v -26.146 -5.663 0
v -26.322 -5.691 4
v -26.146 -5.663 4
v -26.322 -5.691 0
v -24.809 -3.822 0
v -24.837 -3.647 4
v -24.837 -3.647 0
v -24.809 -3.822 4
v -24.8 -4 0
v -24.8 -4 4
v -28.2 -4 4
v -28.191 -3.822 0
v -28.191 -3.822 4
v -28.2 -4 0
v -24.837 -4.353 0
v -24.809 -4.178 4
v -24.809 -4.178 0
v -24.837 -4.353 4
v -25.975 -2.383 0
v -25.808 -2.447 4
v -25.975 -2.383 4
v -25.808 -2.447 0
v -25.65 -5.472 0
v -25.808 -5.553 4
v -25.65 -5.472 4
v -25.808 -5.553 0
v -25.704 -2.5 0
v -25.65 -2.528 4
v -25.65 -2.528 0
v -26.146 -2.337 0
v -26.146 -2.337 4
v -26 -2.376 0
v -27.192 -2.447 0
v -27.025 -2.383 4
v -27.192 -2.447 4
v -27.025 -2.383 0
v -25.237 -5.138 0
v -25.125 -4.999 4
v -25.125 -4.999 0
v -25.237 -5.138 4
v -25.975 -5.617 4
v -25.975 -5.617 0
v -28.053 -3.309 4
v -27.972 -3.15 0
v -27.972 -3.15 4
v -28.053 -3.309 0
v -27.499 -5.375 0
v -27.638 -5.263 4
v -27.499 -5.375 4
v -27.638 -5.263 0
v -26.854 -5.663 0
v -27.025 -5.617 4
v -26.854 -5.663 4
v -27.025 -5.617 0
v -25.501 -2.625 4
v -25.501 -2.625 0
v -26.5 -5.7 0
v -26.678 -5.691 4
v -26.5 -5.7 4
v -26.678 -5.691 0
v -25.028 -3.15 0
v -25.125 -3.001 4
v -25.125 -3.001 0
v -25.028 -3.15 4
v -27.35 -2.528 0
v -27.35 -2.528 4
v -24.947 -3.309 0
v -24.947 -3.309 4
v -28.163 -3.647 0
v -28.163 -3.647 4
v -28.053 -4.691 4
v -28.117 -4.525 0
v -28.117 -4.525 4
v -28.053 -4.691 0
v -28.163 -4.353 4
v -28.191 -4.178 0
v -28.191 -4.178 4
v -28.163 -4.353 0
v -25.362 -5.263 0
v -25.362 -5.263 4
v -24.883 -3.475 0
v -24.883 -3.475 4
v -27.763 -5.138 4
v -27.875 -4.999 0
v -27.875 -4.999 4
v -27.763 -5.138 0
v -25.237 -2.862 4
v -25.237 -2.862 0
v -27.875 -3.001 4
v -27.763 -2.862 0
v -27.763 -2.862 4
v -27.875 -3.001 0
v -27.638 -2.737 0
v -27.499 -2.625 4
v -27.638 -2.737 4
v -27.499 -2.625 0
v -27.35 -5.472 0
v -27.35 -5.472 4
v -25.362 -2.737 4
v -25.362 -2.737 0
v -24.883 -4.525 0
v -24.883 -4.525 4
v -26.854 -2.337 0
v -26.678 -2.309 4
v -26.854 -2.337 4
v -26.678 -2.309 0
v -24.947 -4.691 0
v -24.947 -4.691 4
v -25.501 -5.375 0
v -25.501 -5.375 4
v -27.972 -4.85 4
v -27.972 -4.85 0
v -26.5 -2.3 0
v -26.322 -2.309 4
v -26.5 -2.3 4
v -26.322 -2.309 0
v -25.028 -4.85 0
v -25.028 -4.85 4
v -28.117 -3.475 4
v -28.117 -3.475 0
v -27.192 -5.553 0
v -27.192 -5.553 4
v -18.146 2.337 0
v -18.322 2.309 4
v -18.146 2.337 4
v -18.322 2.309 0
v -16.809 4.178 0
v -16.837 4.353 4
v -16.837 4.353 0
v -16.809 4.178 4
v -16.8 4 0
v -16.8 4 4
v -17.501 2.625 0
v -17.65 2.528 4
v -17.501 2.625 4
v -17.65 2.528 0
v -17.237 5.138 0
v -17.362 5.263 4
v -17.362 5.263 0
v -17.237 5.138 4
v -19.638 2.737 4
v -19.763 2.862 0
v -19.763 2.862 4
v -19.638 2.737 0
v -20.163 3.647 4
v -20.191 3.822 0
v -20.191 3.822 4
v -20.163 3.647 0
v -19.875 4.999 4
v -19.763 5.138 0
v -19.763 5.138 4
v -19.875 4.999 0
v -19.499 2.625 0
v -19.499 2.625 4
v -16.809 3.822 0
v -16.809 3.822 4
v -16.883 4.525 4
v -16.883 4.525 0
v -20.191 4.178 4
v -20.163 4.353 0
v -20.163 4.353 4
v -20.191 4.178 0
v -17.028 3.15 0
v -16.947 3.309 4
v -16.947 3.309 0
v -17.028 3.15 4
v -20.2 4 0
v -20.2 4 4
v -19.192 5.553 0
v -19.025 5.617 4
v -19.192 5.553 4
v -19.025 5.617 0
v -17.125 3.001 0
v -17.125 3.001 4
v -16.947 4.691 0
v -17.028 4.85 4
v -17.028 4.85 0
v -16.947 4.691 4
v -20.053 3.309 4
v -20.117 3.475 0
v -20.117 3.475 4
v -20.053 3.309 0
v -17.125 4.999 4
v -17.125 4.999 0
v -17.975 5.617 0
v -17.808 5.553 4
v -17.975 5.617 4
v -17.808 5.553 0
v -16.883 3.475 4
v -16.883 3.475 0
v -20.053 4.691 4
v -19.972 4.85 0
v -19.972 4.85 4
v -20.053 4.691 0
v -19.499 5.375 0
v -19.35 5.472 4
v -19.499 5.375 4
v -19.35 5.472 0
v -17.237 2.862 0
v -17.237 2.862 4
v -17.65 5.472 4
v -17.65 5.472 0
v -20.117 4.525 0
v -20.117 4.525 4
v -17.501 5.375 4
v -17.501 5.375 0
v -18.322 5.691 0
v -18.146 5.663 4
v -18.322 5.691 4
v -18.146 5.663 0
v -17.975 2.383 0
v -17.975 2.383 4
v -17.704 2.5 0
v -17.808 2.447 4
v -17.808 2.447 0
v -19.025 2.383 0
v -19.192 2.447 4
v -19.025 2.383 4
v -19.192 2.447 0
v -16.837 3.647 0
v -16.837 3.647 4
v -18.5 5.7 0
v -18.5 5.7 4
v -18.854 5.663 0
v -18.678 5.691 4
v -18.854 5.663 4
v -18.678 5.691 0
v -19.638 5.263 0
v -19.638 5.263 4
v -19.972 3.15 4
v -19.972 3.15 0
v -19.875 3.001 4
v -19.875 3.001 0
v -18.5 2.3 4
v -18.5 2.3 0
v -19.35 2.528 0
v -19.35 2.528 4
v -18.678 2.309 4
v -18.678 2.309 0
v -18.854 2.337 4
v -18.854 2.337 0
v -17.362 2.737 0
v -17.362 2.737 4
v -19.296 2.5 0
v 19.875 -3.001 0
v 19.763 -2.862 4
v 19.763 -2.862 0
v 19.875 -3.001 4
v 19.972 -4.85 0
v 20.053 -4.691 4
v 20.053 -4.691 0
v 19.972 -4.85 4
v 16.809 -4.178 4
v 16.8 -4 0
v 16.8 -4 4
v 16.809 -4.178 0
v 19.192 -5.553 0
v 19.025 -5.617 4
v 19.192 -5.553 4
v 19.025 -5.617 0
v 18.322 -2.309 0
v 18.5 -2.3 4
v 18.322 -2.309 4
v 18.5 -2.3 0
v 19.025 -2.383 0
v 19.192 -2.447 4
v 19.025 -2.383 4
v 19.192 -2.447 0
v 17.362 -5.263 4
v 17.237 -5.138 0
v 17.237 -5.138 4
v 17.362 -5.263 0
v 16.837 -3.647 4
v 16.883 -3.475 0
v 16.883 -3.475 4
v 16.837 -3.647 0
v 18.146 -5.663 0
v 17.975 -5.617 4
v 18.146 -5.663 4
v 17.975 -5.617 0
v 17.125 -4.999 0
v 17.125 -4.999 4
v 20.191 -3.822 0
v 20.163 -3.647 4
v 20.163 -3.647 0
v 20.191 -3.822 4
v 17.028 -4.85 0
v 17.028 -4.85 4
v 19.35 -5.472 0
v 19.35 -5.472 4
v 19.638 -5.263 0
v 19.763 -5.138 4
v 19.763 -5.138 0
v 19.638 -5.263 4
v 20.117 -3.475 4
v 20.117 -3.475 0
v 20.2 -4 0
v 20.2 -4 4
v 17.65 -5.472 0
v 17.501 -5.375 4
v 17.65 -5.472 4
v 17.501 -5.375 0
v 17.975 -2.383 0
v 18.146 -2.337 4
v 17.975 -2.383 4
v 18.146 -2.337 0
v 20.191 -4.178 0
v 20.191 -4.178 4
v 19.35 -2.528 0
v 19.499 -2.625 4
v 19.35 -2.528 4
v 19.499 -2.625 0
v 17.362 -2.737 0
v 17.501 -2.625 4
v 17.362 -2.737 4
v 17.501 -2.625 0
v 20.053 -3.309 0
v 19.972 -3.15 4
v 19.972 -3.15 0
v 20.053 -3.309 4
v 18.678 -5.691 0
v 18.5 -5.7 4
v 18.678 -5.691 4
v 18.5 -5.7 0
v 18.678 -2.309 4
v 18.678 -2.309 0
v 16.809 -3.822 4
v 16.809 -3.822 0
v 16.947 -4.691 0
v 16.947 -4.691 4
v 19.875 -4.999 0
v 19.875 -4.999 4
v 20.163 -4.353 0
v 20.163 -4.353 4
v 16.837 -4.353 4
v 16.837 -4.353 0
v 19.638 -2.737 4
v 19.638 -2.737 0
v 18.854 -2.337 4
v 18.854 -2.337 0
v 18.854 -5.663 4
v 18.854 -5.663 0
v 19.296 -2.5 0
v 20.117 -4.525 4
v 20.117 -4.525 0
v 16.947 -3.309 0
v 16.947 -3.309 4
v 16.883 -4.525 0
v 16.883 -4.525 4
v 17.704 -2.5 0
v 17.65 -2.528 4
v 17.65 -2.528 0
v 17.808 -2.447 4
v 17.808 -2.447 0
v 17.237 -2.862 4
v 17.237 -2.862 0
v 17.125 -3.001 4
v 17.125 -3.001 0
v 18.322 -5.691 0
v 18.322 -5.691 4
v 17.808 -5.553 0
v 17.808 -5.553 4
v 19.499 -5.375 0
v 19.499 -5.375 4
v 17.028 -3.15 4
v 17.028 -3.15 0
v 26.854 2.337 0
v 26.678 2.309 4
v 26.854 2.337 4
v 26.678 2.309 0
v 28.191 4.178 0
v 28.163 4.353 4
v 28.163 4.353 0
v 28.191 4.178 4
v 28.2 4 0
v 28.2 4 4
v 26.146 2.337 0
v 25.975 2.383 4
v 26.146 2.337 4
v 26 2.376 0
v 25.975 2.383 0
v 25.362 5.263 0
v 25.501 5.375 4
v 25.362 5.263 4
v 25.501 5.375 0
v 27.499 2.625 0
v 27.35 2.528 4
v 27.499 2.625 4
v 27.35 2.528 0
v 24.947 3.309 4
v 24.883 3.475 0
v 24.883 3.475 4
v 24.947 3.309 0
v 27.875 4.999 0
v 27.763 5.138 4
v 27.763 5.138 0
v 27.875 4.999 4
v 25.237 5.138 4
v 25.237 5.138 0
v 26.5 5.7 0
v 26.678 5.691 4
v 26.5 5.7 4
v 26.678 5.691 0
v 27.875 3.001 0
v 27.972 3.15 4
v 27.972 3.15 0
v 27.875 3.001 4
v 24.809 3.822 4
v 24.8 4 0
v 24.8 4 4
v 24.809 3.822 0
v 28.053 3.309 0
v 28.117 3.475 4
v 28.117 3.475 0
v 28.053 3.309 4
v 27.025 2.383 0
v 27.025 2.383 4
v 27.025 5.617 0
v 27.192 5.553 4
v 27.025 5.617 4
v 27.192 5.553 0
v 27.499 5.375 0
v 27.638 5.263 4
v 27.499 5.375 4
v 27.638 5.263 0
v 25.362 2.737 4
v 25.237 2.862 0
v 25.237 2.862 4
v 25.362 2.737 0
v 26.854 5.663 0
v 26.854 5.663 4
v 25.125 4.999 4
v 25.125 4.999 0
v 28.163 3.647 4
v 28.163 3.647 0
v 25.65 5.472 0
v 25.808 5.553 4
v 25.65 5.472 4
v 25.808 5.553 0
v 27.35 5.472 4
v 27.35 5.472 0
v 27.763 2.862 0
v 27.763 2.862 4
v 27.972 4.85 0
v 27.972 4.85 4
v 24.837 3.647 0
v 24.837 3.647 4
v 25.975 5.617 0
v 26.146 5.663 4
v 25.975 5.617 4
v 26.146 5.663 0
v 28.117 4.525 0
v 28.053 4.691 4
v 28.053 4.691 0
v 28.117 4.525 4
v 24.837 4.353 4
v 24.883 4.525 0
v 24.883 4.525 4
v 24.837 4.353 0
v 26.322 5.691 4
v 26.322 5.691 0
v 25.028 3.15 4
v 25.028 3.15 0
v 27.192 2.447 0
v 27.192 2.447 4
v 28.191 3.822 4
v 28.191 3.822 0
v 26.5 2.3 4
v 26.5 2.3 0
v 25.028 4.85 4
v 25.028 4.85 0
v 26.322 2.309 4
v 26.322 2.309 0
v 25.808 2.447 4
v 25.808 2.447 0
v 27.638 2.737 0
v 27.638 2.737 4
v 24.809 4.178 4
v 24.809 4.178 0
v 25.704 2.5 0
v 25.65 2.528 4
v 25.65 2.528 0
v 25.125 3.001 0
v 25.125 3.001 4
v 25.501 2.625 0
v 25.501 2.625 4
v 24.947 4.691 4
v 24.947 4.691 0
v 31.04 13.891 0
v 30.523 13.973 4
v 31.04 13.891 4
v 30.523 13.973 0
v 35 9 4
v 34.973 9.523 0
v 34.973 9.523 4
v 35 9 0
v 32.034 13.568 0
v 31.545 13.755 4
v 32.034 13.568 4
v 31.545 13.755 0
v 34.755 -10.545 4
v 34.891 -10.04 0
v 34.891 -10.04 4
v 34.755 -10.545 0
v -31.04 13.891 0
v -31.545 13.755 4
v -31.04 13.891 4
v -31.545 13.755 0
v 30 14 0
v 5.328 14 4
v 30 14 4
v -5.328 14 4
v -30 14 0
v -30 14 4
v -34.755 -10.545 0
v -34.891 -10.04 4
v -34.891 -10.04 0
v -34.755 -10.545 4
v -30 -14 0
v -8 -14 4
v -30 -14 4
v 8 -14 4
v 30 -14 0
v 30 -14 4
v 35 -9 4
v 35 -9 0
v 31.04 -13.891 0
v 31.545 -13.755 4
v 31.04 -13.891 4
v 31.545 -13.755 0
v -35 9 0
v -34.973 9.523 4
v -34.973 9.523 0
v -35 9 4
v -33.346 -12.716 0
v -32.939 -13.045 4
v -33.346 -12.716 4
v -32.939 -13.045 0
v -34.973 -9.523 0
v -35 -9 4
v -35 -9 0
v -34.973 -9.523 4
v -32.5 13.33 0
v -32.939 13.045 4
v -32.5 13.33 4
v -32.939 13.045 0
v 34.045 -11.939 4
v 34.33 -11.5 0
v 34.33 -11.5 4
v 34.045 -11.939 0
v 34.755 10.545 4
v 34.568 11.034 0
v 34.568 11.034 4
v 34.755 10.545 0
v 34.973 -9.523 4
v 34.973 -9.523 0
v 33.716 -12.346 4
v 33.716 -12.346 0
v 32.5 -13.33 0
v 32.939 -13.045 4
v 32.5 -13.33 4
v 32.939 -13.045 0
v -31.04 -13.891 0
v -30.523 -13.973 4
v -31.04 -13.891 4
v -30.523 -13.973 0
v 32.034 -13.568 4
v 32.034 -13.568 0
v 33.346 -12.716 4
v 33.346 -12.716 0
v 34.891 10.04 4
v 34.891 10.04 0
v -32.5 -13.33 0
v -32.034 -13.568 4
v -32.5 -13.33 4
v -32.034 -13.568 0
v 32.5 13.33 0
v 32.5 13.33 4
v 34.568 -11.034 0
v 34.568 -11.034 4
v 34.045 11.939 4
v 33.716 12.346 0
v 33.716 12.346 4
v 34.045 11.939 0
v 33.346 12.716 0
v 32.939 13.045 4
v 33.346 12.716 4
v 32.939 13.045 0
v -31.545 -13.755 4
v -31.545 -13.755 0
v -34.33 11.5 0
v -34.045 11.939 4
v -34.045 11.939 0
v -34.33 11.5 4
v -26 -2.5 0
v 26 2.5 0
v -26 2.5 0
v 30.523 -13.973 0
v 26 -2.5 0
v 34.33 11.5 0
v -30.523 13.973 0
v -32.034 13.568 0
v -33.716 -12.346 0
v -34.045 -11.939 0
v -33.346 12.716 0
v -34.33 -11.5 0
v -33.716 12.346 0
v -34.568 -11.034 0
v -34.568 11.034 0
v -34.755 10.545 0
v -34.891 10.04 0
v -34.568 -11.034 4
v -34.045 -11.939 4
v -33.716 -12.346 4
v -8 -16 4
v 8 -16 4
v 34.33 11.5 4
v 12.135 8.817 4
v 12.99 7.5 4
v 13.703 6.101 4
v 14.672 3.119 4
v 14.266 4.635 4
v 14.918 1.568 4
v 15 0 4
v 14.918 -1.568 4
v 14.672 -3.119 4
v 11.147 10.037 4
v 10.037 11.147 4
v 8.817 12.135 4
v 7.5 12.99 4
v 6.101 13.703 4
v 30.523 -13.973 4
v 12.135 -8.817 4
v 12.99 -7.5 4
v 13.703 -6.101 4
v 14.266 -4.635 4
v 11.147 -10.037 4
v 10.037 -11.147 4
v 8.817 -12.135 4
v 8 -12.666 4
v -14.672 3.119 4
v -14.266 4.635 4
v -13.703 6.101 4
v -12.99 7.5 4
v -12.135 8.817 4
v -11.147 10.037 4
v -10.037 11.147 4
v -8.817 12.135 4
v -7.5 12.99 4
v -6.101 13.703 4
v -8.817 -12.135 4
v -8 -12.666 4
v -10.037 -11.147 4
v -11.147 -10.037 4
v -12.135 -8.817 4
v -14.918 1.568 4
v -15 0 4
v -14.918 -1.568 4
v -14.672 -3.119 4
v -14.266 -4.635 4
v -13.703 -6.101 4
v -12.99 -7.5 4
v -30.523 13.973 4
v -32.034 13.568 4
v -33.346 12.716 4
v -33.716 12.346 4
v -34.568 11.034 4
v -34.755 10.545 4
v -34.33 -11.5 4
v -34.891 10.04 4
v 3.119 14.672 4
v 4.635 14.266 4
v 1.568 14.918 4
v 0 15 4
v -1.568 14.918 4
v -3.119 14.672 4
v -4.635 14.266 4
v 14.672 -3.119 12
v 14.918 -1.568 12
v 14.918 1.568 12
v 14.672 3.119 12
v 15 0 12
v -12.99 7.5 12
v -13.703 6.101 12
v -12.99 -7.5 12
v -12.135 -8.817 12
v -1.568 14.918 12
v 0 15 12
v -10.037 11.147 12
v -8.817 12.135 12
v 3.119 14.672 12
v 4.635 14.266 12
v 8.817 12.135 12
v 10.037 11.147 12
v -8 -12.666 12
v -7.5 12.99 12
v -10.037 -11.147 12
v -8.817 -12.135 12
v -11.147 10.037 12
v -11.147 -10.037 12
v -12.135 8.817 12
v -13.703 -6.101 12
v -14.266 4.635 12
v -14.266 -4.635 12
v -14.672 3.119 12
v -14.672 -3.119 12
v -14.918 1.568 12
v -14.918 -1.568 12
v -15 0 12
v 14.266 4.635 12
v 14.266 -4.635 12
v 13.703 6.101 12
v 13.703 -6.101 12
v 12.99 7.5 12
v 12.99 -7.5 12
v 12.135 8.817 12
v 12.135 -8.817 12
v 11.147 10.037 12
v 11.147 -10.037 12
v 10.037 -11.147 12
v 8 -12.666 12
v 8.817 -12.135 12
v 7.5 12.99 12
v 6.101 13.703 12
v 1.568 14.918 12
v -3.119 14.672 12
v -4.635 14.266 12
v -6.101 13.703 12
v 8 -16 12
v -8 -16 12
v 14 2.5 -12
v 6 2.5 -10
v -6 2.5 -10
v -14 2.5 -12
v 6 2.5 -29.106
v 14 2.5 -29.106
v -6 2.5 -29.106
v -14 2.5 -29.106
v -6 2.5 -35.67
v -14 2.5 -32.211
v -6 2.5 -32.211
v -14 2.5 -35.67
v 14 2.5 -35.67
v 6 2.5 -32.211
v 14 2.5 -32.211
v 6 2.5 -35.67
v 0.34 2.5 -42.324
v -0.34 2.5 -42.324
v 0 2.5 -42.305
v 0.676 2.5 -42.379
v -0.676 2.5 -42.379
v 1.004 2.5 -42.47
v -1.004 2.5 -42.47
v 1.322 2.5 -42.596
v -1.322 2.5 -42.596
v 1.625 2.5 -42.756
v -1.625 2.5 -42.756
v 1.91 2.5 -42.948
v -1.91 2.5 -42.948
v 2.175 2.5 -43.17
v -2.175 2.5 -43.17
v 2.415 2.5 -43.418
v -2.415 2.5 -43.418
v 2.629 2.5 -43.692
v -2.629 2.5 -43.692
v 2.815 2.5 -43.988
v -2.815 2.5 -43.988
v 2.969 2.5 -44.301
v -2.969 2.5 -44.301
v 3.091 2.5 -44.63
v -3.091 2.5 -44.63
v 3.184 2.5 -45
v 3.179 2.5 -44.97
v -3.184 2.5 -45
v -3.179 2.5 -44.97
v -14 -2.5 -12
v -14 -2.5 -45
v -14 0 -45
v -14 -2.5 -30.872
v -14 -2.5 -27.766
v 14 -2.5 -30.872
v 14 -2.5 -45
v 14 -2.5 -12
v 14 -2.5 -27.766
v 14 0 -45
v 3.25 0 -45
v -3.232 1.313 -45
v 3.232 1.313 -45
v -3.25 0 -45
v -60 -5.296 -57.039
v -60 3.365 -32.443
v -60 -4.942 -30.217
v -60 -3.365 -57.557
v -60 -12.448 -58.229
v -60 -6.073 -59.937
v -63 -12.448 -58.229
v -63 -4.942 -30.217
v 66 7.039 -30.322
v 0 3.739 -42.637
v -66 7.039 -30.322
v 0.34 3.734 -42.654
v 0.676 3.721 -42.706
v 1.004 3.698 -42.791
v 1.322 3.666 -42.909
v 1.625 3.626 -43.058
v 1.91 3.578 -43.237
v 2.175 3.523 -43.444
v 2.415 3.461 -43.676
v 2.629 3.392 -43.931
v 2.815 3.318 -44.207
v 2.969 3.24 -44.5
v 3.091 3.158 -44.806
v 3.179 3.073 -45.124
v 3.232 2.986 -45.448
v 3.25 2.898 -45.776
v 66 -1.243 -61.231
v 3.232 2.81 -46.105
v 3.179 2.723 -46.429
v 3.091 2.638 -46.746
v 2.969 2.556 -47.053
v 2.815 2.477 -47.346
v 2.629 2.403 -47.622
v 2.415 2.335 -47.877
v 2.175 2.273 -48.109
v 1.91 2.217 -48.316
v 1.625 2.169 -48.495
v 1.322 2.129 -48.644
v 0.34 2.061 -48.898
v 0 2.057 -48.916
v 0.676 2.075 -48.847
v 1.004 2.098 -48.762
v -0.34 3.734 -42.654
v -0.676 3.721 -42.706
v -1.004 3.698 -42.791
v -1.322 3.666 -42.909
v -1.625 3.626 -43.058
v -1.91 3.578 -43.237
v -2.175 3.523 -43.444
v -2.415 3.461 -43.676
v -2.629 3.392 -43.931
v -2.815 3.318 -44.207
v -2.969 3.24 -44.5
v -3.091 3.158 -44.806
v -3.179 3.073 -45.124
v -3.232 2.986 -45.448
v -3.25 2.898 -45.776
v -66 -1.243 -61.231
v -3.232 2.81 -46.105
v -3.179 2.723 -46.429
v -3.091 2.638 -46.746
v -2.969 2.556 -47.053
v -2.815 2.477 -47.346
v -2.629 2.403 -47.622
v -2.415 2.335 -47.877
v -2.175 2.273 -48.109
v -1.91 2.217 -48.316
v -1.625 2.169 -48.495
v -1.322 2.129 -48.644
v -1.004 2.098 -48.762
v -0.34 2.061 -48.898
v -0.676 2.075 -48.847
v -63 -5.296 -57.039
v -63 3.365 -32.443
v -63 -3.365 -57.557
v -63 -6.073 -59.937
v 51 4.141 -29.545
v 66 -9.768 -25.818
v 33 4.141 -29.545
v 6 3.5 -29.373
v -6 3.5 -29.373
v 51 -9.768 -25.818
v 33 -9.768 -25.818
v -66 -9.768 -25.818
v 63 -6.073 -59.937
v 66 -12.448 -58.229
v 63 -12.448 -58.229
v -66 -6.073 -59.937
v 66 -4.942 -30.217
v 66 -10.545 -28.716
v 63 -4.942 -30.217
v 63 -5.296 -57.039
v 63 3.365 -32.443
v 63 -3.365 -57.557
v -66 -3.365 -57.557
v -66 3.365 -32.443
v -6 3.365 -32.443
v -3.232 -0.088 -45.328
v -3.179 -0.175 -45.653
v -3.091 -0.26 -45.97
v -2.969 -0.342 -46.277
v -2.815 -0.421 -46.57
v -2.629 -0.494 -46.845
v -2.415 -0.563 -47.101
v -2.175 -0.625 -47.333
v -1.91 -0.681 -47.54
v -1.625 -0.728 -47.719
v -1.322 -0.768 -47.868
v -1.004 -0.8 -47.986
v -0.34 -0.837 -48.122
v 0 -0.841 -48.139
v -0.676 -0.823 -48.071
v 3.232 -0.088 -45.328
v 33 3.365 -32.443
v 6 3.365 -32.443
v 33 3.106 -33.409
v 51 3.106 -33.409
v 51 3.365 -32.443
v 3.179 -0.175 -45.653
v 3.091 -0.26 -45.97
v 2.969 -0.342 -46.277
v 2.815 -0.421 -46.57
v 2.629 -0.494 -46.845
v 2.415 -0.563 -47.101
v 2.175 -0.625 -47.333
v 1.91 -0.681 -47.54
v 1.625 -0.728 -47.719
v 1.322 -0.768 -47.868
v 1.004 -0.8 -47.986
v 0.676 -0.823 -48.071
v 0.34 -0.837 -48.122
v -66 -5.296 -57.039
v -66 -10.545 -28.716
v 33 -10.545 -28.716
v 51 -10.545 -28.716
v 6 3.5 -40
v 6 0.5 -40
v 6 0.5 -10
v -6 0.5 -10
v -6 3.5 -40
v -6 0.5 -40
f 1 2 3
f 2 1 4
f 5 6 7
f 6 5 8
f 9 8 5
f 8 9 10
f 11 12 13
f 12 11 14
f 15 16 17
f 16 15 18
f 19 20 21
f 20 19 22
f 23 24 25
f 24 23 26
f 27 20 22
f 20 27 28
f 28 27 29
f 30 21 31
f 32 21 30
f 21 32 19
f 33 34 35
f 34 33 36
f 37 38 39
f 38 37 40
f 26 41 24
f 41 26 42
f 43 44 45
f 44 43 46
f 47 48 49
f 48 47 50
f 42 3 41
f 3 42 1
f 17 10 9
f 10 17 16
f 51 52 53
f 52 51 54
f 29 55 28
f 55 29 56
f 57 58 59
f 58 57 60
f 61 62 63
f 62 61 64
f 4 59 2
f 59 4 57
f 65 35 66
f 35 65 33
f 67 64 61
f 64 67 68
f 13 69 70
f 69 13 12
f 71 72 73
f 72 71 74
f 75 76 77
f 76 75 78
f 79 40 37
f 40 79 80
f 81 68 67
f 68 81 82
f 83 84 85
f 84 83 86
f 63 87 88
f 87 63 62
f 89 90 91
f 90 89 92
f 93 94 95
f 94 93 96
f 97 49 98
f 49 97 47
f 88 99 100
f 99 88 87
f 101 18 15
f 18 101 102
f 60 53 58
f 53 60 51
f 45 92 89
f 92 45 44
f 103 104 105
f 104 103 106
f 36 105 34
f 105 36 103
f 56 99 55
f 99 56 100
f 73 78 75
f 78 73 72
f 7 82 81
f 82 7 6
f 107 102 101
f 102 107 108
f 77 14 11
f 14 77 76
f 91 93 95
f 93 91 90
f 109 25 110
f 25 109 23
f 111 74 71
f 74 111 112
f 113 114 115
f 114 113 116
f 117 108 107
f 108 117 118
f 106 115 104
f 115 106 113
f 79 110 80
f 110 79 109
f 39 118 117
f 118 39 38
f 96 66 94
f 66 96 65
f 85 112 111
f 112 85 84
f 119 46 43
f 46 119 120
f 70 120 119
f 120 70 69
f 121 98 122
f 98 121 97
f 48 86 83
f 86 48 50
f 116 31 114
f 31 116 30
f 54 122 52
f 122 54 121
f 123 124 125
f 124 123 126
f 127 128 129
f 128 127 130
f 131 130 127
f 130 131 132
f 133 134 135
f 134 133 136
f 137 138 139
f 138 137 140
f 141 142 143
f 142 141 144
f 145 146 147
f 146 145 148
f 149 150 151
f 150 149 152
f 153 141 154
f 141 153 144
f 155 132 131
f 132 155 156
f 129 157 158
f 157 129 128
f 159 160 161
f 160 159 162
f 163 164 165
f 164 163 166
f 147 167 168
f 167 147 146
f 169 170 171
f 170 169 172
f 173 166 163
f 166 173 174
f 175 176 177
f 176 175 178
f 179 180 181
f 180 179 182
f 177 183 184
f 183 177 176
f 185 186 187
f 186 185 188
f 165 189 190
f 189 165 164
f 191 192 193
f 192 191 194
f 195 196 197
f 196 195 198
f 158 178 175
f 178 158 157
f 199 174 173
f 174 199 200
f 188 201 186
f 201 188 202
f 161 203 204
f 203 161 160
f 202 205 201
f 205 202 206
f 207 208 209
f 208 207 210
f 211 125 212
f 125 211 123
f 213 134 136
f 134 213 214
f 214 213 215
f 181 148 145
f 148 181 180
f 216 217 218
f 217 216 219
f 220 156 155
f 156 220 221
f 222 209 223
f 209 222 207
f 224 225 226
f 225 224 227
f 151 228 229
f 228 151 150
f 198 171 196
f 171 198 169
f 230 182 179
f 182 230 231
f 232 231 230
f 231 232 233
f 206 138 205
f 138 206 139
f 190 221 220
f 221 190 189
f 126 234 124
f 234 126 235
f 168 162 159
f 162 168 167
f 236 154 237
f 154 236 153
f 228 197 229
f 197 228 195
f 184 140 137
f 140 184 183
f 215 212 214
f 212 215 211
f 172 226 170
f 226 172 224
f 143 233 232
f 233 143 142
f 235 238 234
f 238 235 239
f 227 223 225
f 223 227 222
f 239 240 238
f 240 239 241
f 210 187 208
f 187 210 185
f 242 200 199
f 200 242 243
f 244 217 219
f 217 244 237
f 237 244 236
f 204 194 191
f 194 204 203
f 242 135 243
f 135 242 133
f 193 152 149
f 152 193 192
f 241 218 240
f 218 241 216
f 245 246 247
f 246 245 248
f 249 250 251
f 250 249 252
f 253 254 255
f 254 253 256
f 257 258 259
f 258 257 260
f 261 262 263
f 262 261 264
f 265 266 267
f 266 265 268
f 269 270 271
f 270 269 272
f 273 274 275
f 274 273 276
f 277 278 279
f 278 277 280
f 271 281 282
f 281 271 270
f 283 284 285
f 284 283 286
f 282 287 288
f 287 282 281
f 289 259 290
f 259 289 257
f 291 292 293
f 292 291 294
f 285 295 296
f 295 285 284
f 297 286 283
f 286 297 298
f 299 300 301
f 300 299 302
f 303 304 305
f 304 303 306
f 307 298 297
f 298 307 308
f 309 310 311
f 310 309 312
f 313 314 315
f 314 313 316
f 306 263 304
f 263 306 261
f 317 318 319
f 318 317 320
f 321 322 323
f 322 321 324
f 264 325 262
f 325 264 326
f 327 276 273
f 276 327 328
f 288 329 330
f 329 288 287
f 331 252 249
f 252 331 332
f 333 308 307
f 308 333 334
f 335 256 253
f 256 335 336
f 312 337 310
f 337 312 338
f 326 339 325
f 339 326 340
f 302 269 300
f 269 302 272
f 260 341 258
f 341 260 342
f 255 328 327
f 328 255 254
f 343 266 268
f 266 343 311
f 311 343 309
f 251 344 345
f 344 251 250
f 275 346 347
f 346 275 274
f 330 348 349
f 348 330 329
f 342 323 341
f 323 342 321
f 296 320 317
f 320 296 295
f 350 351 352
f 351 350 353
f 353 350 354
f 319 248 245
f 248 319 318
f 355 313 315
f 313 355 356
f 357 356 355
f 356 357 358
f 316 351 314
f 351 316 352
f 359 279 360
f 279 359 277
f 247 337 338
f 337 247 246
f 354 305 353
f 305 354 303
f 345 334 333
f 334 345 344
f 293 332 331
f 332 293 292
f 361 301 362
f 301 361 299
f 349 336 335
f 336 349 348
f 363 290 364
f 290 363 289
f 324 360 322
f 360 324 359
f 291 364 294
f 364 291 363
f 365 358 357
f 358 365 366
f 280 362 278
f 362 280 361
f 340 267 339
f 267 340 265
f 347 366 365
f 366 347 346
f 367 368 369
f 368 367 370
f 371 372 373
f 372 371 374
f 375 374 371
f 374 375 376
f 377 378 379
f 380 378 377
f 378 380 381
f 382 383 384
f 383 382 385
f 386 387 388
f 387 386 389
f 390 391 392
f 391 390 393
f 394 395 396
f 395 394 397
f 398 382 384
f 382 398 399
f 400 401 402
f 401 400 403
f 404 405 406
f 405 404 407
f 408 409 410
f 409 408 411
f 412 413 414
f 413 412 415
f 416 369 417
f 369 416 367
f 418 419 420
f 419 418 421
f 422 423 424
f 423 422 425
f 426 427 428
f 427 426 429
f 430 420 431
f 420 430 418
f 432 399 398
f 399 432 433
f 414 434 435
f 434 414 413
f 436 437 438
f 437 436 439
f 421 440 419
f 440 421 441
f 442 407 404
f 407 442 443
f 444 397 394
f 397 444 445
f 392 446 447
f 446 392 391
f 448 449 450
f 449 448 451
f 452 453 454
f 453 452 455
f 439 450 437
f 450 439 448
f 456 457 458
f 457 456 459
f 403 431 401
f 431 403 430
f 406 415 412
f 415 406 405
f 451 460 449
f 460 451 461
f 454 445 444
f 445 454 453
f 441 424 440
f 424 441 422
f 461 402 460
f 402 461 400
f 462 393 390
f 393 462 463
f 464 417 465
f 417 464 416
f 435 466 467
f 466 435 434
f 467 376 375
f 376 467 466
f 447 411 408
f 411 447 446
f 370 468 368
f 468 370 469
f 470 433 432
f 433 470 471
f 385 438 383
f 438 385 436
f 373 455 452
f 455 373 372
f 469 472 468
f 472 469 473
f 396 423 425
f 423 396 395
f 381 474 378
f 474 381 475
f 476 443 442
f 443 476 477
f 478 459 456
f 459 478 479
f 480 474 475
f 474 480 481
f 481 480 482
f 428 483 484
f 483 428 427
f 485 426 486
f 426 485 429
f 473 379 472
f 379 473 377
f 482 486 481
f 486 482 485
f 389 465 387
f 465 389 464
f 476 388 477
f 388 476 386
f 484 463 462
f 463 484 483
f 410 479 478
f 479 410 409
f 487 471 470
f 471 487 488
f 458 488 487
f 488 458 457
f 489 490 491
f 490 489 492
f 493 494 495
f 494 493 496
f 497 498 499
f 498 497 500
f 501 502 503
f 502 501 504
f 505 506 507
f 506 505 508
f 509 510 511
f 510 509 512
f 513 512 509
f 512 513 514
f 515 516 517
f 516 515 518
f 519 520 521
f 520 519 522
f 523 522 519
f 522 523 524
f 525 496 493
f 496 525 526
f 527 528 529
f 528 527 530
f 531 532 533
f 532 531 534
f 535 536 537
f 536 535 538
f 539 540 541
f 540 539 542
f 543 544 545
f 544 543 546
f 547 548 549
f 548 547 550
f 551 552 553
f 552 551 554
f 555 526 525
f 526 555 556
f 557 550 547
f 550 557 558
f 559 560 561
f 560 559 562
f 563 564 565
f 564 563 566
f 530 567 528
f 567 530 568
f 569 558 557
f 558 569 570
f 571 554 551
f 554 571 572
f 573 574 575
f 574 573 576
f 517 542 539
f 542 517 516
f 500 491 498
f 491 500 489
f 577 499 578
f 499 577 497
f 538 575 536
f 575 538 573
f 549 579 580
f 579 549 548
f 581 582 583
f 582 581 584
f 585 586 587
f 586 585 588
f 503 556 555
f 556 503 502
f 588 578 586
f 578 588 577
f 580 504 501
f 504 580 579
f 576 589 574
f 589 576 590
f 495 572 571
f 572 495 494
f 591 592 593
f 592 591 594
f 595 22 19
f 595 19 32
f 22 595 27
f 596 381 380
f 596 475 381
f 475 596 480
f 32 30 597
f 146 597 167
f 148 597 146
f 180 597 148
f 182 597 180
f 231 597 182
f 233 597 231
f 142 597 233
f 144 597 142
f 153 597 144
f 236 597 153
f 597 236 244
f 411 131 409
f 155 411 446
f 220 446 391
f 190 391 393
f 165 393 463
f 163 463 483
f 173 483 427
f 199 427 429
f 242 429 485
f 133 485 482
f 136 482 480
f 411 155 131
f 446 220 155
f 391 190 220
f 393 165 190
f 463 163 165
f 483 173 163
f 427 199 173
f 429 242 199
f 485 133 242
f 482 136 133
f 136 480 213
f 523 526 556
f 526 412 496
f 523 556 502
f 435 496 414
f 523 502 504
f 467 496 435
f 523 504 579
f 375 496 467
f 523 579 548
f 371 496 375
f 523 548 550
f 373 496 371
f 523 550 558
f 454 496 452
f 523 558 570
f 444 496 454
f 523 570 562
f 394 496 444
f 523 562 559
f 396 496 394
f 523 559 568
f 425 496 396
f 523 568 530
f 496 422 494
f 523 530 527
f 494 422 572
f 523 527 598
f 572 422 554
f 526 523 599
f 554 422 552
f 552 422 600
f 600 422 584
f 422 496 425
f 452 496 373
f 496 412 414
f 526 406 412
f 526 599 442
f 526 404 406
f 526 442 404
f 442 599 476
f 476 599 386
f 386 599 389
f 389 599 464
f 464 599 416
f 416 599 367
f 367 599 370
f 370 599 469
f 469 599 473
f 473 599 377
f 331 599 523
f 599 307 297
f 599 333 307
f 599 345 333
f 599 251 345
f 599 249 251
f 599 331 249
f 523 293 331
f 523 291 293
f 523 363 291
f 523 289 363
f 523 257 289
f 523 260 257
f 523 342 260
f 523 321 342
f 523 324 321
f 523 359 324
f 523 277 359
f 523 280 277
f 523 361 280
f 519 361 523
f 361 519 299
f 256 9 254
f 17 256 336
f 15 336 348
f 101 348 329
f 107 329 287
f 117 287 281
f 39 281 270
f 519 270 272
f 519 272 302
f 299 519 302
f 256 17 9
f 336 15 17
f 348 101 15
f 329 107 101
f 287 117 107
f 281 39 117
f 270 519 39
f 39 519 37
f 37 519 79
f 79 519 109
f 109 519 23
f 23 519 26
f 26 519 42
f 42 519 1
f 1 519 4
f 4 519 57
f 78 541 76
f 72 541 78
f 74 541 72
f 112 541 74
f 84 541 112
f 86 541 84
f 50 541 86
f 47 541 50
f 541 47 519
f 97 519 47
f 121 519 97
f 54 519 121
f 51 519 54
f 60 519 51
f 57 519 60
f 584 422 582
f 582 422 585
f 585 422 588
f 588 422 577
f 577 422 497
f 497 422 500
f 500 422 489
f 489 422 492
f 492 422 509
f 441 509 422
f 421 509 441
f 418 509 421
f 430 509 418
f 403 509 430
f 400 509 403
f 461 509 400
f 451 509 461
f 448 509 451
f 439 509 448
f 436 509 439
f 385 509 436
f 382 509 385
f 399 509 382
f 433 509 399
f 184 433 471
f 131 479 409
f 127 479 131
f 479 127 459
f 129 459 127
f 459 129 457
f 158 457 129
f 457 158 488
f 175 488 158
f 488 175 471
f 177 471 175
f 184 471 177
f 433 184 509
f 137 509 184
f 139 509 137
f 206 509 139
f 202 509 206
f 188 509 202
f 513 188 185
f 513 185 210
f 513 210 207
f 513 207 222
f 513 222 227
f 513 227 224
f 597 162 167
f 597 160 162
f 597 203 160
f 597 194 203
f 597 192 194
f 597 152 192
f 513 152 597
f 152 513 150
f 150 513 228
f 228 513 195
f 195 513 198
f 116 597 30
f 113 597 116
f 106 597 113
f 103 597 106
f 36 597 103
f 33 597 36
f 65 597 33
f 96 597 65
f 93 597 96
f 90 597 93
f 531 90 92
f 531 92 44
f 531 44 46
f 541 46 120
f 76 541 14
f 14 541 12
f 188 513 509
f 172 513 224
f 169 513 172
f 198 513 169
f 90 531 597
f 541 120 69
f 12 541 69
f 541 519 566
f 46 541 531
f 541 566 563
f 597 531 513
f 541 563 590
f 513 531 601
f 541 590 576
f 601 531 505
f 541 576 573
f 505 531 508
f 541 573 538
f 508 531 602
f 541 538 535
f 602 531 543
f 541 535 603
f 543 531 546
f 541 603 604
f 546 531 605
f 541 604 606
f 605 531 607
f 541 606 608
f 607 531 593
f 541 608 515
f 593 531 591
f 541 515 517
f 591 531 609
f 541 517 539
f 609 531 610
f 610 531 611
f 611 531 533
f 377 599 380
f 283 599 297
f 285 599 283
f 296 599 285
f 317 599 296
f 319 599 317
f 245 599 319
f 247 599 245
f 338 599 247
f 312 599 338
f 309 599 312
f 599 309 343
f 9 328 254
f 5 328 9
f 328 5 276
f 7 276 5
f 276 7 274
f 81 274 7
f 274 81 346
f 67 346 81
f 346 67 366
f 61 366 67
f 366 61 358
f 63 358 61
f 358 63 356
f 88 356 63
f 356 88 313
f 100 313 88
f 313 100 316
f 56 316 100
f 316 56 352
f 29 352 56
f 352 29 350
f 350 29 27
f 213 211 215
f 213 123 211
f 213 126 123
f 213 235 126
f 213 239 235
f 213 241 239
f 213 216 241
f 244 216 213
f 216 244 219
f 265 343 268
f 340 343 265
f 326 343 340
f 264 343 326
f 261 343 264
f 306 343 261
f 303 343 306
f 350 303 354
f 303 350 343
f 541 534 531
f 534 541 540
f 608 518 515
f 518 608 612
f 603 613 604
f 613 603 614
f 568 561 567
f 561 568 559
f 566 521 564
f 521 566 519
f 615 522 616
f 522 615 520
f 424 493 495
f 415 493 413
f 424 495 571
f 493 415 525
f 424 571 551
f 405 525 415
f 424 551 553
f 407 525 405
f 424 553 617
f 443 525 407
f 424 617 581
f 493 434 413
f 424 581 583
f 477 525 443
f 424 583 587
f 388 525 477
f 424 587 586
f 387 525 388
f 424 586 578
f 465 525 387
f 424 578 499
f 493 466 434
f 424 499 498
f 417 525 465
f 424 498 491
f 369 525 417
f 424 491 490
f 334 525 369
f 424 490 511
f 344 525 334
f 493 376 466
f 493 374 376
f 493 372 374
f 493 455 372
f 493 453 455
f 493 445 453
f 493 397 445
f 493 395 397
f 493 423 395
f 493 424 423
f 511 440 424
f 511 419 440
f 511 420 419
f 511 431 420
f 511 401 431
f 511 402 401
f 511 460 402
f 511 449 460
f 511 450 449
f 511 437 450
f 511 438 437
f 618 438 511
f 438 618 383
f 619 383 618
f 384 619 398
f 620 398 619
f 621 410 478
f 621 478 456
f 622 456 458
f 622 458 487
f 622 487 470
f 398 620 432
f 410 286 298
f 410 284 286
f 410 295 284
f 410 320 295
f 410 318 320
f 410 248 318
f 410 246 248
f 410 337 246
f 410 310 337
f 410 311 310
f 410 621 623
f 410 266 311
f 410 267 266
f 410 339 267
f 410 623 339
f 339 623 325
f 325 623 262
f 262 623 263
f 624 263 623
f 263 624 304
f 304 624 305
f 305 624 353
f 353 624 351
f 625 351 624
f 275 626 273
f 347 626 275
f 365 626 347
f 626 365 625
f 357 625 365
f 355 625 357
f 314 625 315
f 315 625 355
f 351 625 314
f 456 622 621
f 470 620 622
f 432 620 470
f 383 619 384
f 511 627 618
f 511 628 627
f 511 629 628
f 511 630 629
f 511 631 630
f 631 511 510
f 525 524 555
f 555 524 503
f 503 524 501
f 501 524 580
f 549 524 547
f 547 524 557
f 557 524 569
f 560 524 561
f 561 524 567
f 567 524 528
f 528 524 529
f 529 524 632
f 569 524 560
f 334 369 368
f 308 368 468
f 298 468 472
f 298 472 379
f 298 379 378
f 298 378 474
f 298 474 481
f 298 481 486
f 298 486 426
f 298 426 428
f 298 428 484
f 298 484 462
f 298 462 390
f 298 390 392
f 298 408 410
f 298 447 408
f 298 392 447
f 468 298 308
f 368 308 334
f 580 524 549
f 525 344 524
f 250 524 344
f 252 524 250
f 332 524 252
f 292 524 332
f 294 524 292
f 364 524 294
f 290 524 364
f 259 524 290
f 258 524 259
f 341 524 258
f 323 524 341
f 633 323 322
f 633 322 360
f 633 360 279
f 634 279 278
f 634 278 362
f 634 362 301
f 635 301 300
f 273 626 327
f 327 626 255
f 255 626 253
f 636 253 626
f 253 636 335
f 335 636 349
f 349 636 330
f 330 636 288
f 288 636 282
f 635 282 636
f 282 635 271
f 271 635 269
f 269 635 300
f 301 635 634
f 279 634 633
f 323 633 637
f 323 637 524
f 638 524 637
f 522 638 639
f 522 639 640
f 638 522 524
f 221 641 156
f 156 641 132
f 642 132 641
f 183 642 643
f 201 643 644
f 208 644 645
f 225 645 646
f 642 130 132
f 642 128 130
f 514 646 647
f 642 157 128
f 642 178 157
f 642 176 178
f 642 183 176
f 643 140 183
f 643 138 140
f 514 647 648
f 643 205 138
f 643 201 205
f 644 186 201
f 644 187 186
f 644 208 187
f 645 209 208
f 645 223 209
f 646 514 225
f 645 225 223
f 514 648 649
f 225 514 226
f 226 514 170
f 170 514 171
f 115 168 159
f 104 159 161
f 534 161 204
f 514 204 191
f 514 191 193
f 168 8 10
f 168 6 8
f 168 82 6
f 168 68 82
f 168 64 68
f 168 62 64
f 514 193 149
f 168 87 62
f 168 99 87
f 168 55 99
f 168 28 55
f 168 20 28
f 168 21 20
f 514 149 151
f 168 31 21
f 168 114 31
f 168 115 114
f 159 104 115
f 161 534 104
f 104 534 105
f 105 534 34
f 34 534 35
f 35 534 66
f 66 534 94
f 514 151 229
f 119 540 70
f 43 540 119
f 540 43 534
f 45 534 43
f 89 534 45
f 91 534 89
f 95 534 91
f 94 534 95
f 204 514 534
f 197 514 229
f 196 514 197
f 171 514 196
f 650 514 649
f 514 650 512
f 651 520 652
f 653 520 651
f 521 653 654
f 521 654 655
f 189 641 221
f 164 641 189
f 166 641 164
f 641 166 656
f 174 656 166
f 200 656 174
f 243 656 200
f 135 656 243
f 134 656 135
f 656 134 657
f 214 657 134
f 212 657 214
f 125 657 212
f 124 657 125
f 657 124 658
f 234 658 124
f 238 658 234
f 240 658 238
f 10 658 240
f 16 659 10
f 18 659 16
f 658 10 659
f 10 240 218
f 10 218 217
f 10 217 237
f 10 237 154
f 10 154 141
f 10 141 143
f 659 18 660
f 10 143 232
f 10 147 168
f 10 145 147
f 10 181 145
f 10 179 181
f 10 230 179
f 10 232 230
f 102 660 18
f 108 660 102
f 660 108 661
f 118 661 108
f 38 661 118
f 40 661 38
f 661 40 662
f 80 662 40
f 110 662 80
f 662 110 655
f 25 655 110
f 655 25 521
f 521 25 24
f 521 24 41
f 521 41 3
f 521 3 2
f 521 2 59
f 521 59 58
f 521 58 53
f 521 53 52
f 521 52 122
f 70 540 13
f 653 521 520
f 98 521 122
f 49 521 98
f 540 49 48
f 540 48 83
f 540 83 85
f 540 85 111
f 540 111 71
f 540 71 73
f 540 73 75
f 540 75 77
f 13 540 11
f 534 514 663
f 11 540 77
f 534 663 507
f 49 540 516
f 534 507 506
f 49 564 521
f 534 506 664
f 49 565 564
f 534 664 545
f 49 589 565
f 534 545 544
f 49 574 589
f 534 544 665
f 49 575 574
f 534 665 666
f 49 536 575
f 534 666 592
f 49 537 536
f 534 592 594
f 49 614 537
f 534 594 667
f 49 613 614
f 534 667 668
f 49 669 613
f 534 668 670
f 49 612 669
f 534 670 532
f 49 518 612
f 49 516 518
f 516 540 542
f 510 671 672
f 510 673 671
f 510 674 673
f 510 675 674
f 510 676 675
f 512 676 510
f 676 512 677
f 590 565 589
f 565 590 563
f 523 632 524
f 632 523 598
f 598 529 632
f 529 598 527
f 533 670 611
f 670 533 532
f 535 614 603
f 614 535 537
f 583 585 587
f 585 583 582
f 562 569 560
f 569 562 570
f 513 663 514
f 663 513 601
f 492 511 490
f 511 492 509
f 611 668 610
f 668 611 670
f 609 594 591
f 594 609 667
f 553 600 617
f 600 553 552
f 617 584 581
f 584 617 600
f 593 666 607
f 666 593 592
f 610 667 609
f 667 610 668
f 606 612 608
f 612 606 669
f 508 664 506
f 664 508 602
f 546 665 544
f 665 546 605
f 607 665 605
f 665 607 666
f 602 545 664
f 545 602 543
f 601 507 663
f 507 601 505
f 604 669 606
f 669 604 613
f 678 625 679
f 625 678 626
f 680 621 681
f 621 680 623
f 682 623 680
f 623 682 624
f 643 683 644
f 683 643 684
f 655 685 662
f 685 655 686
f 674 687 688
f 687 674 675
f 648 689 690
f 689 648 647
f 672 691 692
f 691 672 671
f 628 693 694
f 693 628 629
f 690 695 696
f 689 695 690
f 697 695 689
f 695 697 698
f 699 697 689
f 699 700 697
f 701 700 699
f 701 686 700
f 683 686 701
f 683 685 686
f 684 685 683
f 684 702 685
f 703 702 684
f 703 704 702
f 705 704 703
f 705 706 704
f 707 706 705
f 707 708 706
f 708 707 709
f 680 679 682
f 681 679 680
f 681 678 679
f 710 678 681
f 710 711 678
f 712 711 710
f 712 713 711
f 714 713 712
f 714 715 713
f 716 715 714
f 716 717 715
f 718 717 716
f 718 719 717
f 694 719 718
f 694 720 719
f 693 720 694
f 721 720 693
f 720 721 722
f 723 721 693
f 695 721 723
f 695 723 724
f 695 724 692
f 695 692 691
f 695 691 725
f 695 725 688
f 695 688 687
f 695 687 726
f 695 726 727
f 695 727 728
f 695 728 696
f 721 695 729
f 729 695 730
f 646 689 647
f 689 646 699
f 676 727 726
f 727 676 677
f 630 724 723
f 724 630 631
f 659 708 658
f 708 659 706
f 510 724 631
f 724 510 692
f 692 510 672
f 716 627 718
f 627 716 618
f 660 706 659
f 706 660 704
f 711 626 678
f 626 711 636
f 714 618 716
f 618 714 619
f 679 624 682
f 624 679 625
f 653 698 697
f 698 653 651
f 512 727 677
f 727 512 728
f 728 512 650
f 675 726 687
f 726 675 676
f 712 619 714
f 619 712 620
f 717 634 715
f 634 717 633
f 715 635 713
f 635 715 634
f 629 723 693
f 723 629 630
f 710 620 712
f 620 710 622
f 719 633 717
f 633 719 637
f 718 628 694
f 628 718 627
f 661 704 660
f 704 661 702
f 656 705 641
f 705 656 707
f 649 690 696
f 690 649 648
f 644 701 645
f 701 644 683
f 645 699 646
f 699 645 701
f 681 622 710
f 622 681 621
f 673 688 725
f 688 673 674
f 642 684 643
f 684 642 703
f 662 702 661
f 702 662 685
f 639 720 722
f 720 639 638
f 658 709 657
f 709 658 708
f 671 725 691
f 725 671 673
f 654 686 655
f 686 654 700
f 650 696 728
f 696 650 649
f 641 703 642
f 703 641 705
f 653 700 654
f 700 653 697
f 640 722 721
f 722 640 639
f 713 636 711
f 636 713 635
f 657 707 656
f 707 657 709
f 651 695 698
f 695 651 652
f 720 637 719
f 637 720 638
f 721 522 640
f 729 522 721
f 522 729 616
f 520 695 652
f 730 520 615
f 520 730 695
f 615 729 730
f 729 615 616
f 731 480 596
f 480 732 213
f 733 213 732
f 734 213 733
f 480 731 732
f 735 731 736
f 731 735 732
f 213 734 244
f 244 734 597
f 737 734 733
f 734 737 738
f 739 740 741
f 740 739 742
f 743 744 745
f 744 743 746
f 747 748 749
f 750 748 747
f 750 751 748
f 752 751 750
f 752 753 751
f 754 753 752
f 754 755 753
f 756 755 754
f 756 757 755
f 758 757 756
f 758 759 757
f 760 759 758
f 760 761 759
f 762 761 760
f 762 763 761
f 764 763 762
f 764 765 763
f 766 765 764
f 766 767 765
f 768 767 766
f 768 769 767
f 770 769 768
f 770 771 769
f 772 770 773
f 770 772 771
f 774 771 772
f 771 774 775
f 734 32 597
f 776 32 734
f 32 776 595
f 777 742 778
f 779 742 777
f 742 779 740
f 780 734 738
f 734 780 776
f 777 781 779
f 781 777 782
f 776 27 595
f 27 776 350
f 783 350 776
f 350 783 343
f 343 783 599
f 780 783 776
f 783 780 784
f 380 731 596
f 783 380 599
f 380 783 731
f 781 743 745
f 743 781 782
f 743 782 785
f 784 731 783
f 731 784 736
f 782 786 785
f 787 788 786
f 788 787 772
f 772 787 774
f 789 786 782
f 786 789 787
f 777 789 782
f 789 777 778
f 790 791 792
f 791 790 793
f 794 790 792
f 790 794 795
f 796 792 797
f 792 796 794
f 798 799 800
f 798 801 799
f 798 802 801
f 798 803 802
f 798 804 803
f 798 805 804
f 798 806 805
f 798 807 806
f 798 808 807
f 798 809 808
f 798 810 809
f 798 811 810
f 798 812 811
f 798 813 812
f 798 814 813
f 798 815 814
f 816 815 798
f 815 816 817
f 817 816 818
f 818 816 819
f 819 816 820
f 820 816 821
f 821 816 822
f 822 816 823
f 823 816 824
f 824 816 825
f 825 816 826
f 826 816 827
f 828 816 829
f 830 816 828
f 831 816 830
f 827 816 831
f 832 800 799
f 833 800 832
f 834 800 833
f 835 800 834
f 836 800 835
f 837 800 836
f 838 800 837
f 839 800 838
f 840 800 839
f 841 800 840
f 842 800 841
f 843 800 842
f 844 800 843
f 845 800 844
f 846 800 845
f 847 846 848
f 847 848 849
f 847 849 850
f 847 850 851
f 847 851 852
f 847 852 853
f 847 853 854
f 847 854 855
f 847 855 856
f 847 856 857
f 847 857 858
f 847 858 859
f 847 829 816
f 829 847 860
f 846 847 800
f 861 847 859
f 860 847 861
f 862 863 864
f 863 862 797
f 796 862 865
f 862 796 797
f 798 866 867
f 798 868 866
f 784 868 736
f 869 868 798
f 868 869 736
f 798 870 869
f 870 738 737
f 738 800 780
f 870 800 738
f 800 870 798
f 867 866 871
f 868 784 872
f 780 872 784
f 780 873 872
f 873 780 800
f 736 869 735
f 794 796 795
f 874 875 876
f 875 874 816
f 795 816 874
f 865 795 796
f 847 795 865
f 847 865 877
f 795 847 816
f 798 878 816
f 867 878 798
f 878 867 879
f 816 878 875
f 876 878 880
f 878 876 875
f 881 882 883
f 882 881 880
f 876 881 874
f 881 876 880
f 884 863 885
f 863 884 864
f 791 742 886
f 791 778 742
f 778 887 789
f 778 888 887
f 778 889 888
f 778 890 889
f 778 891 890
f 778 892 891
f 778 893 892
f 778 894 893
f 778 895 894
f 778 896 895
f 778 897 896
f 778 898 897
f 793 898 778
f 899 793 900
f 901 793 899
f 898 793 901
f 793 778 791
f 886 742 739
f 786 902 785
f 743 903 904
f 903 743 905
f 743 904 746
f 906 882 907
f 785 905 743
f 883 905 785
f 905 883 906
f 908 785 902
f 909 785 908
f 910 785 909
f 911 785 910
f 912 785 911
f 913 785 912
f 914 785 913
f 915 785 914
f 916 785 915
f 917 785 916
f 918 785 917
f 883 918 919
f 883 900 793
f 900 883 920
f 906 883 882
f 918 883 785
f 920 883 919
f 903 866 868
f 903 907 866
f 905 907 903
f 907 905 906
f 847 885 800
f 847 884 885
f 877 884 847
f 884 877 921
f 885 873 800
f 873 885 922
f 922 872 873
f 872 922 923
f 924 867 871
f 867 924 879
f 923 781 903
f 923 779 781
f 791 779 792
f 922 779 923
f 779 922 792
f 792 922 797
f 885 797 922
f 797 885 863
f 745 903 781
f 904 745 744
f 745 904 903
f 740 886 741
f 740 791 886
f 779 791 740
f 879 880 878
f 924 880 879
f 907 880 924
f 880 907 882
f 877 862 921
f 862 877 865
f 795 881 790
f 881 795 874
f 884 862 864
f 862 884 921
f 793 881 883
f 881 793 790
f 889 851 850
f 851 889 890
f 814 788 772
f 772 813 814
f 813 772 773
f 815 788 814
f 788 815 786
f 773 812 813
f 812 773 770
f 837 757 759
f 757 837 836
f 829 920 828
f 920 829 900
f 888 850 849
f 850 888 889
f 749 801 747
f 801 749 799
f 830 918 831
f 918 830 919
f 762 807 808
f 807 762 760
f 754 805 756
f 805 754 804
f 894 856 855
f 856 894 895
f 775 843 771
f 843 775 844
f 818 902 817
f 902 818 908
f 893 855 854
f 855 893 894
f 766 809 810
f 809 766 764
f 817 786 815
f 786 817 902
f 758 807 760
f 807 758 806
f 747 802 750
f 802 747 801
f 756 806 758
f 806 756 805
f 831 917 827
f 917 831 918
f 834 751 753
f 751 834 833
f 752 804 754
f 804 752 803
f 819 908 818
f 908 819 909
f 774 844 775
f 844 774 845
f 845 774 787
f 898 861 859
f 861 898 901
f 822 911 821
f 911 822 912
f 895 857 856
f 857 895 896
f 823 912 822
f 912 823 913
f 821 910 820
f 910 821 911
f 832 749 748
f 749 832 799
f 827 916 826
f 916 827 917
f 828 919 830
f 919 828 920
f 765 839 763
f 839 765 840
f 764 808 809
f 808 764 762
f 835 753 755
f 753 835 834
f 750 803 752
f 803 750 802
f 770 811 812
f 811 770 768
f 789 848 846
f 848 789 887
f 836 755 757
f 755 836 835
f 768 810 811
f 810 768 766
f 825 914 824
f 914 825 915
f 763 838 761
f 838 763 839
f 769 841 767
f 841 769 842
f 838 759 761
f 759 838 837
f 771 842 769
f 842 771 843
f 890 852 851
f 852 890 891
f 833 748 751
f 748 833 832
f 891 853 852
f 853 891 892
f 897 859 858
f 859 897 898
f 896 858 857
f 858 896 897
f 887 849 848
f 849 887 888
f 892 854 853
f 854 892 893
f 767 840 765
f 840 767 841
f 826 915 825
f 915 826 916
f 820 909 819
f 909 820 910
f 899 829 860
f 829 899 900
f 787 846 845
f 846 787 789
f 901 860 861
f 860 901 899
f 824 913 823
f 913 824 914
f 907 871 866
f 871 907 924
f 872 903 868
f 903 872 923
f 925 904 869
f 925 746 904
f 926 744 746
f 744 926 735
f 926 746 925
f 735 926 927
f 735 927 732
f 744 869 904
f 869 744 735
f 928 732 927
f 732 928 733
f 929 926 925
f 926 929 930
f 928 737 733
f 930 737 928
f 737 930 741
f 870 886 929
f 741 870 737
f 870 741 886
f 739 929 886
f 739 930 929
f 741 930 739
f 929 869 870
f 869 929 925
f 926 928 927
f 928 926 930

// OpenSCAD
// Gemini 335 Camera Mount for NERO Robot Arm
// Installs into flange plate like gripper/teaching pendant
// Based on NERO manual section 2.3.2
// Units: mm

$fn = 60;

// ===== Flange interface (from manual) =====
// 4x M3x8 screws, tool inserts into flange center
flange_screw = 3.4;           // M3 clearance
flange_hole_spacing = 45.0;   // between hole groups
flange_insert_d = 30;         // insertion plug diameter (estimated)
flange_insert_h = 8;          // how deep the plug goes in
key_w = 16;                   // anti-fool key width
key_h = 8;                    // anti-fool key protrusion

// ===== Mounting plate =====
plate_w = 70;
plate_d = 28;
plate_t = 4;
plate_r = 5;

// ===== Camera (Gemini 335) =====
cam_w = 124;
cam_d = 27;
cam_h = 29;
cam_screw = 6.5;              // 1/4"-20 clearance

// ===== Arm =====
arm_h = 45;
arm_w = 28;
arm_t = 5;

// ===== Camera tilt =====
cam_tilt = 75;                // degrees from horizontal (75 = mostly looking down)

module rrect(w, d, h, r) {
    hull() for (x=[-1,1], y=[-1,1])
        translate([x*(w/2-r), y*(d/2-r), 0])
            cylinder(r=r, h=h);
}

// 1. Flange insertion plug — goes INTO the flange center hole
module flange_plug() {
    // Main cylindrical plug
    translate([0, 0, plate_t])
        cylinder(d=flange_insert_d, h=flange_insert_h);

    // Anti-fool key (oval protrusion for orientation)
    translate([-key_w/2, -flange_insert_d/2 - 1, plate_t])
        cube([key_w, key_h + 1, flange_insert_h]);
}

// 2. Mounting plate — sits flat against flange face, 4x M3 screw holes
module mount_plate() {
    difference() {
        rrect(plate_w, plate_d, plate_t, plate_r);

        // 4x M3 holes (2 groups of 2, spaced at 45mm)
        for (sx=[-1,1]) {
            translate([sx*flange_hole_spacing/2 - 4, -4, -1])
                cylinder(d=flange_screw, h=plate_t+2);
            translate([sx*flange_hole_spacing/2 + 4,  4, -1])
                cylinder(d=flange_screw, h=plate_t+2);
        }
    }
}

// 3. Arm — connects mounting plate to camera cradle
module arm() {
    // Main arm going down
    translate([-arm_w/2, -arm_t/2, -arm_h])
        cube([arm_w, arm_t, arm_h]);

    // Gussets for stiffness
    gusset = 12;
    for (sx=[-1,1])
        translate([sx*arm_w/2, 0, 0])
        rotate([90,0,0])
        translate([0, 0, -arm_t/2])
        linear_extrude(arm_t)
            polygon([[0,0], [sx*gusset,0], [0,-gusset]]);
}

// 4. Camera cradle — holds Gemini 335, tilted to look down
module camera_cradle() {
    wall = 3;
    cradle_w = cam_w + wall*2 + 2;
    cradle_d = cam_d + wall + 2;
    base_t = wall;
    lip = 5;

    translate([0, 0, -arm_h])
    rotate([cam_tilt, 0, 0])
    translate([0, 0, -base_t]) {
        difference() {
            union() {
                // Base plate (camera sits on this)
                translate([-cradle_w/2, -cradle_d/2, 0])
                    cube([cradle_w, cradle_d, base_t]);

                // Side walls
                for (sx=[-1,1])
                    translate([sx*(cradle_w/2 - wall), -cradle_d/2, 0])
                        cube([wall, cradle_d, cam_h*0.4]);

                // Back wall (taller, supports camera)
                translate([-cradle_w/2, cradle_d/2 - wall, 0])
                    cube([cradle_w, wall, cam_h*0.6]);

                // Front lip (low, doesn't block lens)
                translate([-cradle_w/2, -cradle_d/2, 0])
                    cube([cradle_w, wall, lip]);
            }

            // 1/4"-20 screw hole through base
            translate([0, 0, -1])
                cylinder(d=cam_screw, h=base_t+2);

            // Cable slot (back right)
            translate([cradle_w/4, cradle_d/2 - wall-1, base_t])
                cube([18, wall+2, cam_h*0.6]);
        }
    }
}

// 5. Cable channel along the arm
module cable_channel() {
    translate([-6, arm_t/2 - 2, -arm_h + 5])
        cube([12, 3, arm_h - 15]);
}

// ===== Assembly =====
color("SteelBlue") {
    difference() {
        union() {
            mount_plate();
            flange_plug();
            arm();
            camera_cradle();
        }
        cable_channel();
    }
}

// Ghost camera for size reference
%translate([0, 0, -arm_h])
    rotate([cam_tilt, 0, 0])
    translate([-cam_w/2, -cam_d/2, 0])
        cube([cam_w, cam_d, cam_h]);
